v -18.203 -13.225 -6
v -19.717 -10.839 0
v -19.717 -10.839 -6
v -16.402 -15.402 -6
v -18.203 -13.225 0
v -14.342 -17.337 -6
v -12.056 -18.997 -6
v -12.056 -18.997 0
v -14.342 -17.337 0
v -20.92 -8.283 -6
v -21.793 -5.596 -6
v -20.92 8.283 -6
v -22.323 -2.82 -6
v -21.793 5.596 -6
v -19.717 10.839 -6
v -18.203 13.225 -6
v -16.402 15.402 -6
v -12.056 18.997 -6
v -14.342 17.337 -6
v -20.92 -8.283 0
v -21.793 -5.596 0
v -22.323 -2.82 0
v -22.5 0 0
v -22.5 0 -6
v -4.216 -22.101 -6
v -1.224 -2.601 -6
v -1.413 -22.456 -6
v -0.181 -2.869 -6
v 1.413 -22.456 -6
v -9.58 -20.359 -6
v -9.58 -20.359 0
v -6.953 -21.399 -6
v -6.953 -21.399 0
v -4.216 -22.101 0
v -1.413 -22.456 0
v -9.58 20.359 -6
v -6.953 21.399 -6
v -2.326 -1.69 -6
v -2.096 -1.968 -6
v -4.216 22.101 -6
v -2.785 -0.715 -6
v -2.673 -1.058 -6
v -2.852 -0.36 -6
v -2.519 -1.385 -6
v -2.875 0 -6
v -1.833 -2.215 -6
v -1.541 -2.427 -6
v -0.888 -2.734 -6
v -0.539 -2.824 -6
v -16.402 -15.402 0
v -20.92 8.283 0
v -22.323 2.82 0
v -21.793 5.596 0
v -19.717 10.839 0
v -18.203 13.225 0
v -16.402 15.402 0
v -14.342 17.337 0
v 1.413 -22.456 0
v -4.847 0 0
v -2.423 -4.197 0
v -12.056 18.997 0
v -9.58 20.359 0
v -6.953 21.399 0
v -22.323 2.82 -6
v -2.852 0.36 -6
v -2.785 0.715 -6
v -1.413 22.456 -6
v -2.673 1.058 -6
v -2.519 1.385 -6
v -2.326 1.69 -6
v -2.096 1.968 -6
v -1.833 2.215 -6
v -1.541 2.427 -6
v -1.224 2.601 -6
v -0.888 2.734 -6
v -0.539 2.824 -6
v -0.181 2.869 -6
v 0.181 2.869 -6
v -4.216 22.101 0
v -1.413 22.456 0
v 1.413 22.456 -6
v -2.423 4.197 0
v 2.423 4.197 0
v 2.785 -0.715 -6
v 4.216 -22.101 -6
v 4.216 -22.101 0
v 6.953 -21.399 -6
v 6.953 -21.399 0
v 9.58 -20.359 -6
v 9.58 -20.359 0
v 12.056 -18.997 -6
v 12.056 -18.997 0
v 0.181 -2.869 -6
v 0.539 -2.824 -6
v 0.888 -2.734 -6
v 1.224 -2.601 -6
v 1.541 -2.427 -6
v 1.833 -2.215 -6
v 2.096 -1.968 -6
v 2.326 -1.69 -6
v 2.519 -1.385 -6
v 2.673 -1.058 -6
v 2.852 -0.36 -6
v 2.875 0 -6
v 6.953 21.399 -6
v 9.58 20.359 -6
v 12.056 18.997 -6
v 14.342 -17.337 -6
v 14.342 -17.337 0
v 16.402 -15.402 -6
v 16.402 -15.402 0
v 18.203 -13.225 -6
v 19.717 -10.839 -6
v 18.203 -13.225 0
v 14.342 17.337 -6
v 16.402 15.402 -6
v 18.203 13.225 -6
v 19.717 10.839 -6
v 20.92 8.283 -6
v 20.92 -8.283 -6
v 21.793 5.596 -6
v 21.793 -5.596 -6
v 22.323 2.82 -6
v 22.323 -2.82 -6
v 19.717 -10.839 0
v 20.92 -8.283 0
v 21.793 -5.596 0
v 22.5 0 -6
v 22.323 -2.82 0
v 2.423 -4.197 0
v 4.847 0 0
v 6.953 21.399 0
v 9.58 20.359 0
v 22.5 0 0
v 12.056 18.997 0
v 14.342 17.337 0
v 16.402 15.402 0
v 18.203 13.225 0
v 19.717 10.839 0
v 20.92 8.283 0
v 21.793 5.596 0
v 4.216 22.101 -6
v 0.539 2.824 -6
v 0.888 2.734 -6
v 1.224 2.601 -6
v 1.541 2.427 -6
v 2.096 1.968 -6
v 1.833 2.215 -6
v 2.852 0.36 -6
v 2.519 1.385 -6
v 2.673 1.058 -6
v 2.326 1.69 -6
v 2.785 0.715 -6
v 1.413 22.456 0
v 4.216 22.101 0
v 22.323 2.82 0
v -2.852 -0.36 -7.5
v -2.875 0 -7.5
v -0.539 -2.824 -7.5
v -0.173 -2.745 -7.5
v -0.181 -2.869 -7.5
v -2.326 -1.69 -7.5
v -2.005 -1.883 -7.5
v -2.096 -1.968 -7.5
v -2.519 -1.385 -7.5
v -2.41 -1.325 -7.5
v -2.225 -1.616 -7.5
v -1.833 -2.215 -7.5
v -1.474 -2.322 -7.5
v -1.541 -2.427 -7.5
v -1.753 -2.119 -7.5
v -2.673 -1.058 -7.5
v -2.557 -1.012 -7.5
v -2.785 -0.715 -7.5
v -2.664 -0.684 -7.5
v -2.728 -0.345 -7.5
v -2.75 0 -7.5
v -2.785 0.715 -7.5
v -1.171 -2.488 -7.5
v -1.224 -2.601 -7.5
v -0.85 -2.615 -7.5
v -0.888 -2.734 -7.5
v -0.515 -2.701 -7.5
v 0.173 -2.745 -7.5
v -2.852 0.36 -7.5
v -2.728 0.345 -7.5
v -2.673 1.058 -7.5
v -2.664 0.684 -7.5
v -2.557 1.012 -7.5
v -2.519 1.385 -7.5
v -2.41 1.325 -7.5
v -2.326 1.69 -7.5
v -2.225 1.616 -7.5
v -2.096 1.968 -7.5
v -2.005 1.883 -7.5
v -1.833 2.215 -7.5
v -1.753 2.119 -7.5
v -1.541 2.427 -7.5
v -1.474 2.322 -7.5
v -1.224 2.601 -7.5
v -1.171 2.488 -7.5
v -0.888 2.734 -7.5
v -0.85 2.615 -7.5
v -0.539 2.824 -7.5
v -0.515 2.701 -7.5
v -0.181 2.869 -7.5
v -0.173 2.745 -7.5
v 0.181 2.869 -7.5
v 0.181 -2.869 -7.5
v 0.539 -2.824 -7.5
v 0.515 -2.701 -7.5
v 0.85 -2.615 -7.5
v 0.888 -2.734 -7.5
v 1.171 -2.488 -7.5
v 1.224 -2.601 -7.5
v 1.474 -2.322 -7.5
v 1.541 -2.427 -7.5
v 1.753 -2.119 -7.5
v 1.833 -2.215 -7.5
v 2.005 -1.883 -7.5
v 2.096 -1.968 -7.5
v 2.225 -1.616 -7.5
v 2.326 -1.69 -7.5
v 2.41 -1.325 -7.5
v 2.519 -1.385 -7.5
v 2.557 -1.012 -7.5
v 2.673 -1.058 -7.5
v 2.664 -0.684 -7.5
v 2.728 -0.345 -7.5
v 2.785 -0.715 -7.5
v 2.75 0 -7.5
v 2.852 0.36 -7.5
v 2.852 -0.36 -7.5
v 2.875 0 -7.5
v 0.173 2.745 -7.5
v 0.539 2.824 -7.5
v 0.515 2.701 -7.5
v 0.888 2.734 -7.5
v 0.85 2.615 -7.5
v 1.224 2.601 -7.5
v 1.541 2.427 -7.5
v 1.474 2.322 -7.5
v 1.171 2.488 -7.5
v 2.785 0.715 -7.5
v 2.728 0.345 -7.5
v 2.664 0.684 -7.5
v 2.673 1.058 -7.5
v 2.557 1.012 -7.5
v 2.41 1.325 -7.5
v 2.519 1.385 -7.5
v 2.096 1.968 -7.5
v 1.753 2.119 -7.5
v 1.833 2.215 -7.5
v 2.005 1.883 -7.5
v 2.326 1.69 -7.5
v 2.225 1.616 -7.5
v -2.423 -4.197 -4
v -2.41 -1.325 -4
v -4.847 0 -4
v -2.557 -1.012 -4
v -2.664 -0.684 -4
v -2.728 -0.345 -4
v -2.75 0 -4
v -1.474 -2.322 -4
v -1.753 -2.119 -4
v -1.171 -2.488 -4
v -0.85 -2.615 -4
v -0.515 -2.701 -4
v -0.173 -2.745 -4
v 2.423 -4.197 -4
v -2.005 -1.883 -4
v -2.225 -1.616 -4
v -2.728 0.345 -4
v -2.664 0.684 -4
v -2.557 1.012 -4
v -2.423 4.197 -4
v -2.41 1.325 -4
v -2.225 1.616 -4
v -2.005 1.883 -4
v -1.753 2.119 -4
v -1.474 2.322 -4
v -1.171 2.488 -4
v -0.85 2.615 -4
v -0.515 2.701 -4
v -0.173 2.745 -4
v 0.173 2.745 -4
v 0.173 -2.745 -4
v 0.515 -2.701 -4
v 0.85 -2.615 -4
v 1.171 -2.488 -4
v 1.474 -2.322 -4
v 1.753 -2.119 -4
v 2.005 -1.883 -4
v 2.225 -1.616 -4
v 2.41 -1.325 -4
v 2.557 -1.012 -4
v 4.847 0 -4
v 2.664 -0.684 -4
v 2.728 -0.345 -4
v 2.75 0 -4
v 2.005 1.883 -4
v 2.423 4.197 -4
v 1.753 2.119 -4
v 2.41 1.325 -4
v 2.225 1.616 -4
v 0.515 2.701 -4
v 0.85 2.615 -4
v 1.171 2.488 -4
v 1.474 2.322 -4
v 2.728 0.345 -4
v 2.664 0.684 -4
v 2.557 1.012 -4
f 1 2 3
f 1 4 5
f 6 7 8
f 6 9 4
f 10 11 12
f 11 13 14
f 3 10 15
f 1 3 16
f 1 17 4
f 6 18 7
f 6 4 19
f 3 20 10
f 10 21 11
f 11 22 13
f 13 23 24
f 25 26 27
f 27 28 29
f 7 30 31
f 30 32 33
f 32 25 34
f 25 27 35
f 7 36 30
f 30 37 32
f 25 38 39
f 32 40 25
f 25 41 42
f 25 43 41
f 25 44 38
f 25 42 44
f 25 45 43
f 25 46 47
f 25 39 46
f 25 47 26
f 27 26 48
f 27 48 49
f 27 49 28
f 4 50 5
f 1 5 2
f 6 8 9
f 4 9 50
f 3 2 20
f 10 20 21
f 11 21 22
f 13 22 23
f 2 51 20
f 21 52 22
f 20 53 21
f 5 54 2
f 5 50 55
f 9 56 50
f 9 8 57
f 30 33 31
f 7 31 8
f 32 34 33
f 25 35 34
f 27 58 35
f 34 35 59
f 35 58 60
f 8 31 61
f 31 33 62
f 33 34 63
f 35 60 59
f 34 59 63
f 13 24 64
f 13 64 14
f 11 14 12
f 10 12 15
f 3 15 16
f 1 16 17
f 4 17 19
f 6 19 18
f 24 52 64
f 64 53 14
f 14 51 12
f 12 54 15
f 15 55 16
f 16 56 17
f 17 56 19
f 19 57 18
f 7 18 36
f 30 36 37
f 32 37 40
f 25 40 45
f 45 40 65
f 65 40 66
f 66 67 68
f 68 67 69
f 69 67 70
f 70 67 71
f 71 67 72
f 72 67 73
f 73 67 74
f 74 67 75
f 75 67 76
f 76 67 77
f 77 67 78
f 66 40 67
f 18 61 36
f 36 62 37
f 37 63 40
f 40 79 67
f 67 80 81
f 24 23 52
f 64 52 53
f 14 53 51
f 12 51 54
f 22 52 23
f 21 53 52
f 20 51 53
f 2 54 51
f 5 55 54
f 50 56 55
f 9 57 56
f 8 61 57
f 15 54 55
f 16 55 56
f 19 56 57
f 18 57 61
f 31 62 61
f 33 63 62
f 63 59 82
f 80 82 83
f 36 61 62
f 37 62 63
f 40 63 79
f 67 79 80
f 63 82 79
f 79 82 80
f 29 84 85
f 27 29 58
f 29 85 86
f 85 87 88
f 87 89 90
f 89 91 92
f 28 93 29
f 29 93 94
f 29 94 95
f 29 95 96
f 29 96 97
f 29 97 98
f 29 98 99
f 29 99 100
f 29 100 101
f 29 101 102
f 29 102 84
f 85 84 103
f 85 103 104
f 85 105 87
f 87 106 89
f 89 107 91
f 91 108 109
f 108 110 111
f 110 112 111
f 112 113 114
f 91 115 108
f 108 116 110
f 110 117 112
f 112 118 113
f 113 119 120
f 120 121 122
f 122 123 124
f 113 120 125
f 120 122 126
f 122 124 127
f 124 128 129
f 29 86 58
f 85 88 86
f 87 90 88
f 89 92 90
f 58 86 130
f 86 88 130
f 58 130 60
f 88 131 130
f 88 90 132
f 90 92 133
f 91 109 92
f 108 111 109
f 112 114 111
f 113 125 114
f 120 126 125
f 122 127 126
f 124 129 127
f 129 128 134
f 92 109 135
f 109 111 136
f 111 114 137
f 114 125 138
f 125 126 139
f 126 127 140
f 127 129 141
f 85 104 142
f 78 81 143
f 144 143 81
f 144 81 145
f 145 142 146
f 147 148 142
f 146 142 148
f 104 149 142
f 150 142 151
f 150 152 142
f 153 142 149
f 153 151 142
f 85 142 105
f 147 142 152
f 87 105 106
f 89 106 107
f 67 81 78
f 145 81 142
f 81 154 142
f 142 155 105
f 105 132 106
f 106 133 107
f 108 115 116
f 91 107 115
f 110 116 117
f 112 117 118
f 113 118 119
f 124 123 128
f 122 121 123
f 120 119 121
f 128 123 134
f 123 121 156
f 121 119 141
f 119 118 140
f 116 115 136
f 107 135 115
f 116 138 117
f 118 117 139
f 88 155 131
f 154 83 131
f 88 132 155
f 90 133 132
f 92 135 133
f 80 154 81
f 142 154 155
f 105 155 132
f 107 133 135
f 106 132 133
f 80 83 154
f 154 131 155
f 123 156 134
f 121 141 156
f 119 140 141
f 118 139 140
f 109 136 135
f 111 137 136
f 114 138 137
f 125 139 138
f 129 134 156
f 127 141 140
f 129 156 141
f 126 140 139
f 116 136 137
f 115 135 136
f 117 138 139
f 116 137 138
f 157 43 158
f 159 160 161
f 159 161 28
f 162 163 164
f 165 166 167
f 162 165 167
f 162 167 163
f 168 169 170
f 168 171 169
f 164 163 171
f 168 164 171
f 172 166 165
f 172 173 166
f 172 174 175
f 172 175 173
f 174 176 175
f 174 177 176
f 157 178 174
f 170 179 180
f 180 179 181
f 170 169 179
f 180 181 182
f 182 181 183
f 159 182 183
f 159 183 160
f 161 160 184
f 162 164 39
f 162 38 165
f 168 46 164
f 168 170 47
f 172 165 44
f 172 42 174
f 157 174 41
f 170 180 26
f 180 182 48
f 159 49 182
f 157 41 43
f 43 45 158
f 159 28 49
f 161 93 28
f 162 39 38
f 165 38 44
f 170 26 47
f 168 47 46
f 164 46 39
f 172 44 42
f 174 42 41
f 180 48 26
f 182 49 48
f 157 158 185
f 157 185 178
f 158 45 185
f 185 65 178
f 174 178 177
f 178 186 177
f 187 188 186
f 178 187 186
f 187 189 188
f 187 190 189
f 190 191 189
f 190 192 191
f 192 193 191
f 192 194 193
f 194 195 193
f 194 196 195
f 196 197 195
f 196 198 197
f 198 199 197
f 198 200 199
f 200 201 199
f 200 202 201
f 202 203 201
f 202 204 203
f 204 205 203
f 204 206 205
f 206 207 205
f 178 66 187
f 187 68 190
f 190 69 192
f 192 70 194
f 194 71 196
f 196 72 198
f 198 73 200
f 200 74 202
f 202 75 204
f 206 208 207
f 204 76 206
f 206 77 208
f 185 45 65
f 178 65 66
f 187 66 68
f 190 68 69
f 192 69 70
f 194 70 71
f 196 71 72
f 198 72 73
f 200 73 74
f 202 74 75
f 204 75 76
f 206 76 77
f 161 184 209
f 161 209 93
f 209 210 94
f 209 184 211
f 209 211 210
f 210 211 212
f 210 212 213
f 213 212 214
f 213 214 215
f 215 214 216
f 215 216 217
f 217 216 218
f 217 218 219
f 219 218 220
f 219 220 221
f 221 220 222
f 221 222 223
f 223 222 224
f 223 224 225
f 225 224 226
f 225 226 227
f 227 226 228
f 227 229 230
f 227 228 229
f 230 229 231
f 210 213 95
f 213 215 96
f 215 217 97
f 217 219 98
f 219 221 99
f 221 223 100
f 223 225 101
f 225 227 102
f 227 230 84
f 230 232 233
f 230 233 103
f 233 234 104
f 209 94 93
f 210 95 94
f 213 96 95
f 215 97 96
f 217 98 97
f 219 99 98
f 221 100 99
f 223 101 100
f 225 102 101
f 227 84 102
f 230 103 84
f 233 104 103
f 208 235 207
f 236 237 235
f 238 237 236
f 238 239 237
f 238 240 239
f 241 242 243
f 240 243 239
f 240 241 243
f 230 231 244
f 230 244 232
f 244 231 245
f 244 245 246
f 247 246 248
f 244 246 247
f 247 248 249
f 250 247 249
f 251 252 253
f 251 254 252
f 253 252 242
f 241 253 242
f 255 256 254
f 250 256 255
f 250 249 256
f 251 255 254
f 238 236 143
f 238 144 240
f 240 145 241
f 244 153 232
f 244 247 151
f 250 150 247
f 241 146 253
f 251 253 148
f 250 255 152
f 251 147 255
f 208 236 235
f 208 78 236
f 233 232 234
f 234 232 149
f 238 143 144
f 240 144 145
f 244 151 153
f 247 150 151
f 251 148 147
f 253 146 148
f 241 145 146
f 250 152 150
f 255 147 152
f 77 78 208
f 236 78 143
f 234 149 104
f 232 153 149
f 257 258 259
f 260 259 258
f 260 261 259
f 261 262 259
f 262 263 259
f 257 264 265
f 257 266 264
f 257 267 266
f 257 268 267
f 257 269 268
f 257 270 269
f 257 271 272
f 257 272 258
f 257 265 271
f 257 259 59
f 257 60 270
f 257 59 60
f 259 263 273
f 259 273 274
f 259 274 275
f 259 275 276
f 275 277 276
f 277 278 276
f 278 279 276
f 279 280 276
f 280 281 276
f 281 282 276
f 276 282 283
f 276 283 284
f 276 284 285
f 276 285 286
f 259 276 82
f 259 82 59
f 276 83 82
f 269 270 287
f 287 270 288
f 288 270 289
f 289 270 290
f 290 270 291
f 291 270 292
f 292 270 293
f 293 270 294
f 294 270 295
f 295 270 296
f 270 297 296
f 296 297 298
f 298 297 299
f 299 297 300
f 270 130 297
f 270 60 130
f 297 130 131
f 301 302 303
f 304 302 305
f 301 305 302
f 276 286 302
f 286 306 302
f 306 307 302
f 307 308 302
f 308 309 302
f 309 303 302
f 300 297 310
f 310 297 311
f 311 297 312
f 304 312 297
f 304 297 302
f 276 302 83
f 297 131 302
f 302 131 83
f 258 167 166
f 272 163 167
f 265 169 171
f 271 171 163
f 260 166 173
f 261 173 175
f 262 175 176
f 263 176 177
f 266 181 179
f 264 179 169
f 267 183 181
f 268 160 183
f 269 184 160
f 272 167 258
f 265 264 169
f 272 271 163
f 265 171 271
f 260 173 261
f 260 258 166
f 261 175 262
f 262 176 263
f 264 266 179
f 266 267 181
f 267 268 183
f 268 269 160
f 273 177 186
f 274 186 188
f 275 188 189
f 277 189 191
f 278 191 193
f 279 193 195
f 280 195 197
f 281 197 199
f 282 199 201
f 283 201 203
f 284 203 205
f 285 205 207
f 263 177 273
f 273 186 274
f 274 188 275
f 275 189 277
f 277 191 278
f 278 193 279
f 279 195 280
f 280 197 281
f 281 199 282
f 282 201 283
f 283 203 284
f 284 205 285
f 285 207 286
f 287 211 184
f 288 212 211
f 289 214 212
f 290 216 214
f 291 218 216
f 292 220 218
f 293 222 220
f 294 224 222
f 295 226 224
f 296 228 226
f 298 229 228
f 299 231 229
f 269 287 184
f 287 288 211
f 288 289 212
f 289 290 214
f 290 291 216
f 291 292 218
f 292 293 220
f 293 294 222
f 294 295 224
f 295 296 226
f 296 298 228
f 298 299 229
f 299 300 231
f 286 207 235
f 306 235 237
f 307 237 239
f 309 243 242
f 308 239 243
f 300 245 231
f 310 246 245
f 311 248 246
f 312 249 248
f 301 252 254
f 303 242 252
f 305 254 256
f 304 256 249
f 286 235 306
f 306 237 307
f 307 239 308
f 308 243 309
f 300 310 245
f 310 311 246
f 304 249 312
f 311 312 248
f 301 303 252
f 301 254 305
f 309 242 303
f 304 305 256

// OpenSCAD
$fn = 50;

difference() {
	union() {
		translate(v = [0, 0, -6.0]) {
			cylinder(h = 6.0, r = 22.5);
		}
		#translate(v = [0, 0, -7.5]) {
			cylinder(h = 7.5, r = 2.875);
		}
	}
	union() {
		translate(v = [0, 0, 0]) {
			rotate(a = [0, 0, 0]) {
				difference() {
					union() {
						translate(v = [0, 0, -4]) {
							linear_extrude(height = 4) {
								polygon(points = [[4.8468, 0.0], [2.4234000000000004, 4.197451927062417], [-2.423399999999999, 4.197451927062417], [-4.8468, 5.935618106107392e-16], [-2.423400000000002, -4.197451927062416], [2.423399999999997, -4.197451927062419]]);
							}
						}
					}
					union();
				}
			}
		}
		#translate(v = [0, 0, -100.0]) {
			cylinder(h = 200, r = 2.75);
		}
	}
}
